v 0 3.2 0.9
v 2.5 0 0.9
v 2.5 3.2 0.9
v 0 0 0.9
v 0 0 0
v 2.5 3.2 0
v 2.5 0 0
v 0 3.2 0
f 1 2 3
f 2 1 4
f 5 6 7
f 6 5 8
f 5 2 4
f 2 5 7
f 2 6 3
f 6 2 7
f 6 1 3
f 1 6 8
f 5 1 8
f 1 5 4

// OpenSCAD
/* Warning, this is a very basic generator with a lot of approximation 
input data : [VQFN, MVA, 2.5x3.2x0.9mm, 14, , B, C04-01098B]
generated by com.zoubworld.electronics.cad.model3d.Basic
Date : Sun Feb 15 10:50:49 CET 2026
*/

//body
color("black")
translate([0,0,0])
cube([2.5,3.2,0.9], center=false);
